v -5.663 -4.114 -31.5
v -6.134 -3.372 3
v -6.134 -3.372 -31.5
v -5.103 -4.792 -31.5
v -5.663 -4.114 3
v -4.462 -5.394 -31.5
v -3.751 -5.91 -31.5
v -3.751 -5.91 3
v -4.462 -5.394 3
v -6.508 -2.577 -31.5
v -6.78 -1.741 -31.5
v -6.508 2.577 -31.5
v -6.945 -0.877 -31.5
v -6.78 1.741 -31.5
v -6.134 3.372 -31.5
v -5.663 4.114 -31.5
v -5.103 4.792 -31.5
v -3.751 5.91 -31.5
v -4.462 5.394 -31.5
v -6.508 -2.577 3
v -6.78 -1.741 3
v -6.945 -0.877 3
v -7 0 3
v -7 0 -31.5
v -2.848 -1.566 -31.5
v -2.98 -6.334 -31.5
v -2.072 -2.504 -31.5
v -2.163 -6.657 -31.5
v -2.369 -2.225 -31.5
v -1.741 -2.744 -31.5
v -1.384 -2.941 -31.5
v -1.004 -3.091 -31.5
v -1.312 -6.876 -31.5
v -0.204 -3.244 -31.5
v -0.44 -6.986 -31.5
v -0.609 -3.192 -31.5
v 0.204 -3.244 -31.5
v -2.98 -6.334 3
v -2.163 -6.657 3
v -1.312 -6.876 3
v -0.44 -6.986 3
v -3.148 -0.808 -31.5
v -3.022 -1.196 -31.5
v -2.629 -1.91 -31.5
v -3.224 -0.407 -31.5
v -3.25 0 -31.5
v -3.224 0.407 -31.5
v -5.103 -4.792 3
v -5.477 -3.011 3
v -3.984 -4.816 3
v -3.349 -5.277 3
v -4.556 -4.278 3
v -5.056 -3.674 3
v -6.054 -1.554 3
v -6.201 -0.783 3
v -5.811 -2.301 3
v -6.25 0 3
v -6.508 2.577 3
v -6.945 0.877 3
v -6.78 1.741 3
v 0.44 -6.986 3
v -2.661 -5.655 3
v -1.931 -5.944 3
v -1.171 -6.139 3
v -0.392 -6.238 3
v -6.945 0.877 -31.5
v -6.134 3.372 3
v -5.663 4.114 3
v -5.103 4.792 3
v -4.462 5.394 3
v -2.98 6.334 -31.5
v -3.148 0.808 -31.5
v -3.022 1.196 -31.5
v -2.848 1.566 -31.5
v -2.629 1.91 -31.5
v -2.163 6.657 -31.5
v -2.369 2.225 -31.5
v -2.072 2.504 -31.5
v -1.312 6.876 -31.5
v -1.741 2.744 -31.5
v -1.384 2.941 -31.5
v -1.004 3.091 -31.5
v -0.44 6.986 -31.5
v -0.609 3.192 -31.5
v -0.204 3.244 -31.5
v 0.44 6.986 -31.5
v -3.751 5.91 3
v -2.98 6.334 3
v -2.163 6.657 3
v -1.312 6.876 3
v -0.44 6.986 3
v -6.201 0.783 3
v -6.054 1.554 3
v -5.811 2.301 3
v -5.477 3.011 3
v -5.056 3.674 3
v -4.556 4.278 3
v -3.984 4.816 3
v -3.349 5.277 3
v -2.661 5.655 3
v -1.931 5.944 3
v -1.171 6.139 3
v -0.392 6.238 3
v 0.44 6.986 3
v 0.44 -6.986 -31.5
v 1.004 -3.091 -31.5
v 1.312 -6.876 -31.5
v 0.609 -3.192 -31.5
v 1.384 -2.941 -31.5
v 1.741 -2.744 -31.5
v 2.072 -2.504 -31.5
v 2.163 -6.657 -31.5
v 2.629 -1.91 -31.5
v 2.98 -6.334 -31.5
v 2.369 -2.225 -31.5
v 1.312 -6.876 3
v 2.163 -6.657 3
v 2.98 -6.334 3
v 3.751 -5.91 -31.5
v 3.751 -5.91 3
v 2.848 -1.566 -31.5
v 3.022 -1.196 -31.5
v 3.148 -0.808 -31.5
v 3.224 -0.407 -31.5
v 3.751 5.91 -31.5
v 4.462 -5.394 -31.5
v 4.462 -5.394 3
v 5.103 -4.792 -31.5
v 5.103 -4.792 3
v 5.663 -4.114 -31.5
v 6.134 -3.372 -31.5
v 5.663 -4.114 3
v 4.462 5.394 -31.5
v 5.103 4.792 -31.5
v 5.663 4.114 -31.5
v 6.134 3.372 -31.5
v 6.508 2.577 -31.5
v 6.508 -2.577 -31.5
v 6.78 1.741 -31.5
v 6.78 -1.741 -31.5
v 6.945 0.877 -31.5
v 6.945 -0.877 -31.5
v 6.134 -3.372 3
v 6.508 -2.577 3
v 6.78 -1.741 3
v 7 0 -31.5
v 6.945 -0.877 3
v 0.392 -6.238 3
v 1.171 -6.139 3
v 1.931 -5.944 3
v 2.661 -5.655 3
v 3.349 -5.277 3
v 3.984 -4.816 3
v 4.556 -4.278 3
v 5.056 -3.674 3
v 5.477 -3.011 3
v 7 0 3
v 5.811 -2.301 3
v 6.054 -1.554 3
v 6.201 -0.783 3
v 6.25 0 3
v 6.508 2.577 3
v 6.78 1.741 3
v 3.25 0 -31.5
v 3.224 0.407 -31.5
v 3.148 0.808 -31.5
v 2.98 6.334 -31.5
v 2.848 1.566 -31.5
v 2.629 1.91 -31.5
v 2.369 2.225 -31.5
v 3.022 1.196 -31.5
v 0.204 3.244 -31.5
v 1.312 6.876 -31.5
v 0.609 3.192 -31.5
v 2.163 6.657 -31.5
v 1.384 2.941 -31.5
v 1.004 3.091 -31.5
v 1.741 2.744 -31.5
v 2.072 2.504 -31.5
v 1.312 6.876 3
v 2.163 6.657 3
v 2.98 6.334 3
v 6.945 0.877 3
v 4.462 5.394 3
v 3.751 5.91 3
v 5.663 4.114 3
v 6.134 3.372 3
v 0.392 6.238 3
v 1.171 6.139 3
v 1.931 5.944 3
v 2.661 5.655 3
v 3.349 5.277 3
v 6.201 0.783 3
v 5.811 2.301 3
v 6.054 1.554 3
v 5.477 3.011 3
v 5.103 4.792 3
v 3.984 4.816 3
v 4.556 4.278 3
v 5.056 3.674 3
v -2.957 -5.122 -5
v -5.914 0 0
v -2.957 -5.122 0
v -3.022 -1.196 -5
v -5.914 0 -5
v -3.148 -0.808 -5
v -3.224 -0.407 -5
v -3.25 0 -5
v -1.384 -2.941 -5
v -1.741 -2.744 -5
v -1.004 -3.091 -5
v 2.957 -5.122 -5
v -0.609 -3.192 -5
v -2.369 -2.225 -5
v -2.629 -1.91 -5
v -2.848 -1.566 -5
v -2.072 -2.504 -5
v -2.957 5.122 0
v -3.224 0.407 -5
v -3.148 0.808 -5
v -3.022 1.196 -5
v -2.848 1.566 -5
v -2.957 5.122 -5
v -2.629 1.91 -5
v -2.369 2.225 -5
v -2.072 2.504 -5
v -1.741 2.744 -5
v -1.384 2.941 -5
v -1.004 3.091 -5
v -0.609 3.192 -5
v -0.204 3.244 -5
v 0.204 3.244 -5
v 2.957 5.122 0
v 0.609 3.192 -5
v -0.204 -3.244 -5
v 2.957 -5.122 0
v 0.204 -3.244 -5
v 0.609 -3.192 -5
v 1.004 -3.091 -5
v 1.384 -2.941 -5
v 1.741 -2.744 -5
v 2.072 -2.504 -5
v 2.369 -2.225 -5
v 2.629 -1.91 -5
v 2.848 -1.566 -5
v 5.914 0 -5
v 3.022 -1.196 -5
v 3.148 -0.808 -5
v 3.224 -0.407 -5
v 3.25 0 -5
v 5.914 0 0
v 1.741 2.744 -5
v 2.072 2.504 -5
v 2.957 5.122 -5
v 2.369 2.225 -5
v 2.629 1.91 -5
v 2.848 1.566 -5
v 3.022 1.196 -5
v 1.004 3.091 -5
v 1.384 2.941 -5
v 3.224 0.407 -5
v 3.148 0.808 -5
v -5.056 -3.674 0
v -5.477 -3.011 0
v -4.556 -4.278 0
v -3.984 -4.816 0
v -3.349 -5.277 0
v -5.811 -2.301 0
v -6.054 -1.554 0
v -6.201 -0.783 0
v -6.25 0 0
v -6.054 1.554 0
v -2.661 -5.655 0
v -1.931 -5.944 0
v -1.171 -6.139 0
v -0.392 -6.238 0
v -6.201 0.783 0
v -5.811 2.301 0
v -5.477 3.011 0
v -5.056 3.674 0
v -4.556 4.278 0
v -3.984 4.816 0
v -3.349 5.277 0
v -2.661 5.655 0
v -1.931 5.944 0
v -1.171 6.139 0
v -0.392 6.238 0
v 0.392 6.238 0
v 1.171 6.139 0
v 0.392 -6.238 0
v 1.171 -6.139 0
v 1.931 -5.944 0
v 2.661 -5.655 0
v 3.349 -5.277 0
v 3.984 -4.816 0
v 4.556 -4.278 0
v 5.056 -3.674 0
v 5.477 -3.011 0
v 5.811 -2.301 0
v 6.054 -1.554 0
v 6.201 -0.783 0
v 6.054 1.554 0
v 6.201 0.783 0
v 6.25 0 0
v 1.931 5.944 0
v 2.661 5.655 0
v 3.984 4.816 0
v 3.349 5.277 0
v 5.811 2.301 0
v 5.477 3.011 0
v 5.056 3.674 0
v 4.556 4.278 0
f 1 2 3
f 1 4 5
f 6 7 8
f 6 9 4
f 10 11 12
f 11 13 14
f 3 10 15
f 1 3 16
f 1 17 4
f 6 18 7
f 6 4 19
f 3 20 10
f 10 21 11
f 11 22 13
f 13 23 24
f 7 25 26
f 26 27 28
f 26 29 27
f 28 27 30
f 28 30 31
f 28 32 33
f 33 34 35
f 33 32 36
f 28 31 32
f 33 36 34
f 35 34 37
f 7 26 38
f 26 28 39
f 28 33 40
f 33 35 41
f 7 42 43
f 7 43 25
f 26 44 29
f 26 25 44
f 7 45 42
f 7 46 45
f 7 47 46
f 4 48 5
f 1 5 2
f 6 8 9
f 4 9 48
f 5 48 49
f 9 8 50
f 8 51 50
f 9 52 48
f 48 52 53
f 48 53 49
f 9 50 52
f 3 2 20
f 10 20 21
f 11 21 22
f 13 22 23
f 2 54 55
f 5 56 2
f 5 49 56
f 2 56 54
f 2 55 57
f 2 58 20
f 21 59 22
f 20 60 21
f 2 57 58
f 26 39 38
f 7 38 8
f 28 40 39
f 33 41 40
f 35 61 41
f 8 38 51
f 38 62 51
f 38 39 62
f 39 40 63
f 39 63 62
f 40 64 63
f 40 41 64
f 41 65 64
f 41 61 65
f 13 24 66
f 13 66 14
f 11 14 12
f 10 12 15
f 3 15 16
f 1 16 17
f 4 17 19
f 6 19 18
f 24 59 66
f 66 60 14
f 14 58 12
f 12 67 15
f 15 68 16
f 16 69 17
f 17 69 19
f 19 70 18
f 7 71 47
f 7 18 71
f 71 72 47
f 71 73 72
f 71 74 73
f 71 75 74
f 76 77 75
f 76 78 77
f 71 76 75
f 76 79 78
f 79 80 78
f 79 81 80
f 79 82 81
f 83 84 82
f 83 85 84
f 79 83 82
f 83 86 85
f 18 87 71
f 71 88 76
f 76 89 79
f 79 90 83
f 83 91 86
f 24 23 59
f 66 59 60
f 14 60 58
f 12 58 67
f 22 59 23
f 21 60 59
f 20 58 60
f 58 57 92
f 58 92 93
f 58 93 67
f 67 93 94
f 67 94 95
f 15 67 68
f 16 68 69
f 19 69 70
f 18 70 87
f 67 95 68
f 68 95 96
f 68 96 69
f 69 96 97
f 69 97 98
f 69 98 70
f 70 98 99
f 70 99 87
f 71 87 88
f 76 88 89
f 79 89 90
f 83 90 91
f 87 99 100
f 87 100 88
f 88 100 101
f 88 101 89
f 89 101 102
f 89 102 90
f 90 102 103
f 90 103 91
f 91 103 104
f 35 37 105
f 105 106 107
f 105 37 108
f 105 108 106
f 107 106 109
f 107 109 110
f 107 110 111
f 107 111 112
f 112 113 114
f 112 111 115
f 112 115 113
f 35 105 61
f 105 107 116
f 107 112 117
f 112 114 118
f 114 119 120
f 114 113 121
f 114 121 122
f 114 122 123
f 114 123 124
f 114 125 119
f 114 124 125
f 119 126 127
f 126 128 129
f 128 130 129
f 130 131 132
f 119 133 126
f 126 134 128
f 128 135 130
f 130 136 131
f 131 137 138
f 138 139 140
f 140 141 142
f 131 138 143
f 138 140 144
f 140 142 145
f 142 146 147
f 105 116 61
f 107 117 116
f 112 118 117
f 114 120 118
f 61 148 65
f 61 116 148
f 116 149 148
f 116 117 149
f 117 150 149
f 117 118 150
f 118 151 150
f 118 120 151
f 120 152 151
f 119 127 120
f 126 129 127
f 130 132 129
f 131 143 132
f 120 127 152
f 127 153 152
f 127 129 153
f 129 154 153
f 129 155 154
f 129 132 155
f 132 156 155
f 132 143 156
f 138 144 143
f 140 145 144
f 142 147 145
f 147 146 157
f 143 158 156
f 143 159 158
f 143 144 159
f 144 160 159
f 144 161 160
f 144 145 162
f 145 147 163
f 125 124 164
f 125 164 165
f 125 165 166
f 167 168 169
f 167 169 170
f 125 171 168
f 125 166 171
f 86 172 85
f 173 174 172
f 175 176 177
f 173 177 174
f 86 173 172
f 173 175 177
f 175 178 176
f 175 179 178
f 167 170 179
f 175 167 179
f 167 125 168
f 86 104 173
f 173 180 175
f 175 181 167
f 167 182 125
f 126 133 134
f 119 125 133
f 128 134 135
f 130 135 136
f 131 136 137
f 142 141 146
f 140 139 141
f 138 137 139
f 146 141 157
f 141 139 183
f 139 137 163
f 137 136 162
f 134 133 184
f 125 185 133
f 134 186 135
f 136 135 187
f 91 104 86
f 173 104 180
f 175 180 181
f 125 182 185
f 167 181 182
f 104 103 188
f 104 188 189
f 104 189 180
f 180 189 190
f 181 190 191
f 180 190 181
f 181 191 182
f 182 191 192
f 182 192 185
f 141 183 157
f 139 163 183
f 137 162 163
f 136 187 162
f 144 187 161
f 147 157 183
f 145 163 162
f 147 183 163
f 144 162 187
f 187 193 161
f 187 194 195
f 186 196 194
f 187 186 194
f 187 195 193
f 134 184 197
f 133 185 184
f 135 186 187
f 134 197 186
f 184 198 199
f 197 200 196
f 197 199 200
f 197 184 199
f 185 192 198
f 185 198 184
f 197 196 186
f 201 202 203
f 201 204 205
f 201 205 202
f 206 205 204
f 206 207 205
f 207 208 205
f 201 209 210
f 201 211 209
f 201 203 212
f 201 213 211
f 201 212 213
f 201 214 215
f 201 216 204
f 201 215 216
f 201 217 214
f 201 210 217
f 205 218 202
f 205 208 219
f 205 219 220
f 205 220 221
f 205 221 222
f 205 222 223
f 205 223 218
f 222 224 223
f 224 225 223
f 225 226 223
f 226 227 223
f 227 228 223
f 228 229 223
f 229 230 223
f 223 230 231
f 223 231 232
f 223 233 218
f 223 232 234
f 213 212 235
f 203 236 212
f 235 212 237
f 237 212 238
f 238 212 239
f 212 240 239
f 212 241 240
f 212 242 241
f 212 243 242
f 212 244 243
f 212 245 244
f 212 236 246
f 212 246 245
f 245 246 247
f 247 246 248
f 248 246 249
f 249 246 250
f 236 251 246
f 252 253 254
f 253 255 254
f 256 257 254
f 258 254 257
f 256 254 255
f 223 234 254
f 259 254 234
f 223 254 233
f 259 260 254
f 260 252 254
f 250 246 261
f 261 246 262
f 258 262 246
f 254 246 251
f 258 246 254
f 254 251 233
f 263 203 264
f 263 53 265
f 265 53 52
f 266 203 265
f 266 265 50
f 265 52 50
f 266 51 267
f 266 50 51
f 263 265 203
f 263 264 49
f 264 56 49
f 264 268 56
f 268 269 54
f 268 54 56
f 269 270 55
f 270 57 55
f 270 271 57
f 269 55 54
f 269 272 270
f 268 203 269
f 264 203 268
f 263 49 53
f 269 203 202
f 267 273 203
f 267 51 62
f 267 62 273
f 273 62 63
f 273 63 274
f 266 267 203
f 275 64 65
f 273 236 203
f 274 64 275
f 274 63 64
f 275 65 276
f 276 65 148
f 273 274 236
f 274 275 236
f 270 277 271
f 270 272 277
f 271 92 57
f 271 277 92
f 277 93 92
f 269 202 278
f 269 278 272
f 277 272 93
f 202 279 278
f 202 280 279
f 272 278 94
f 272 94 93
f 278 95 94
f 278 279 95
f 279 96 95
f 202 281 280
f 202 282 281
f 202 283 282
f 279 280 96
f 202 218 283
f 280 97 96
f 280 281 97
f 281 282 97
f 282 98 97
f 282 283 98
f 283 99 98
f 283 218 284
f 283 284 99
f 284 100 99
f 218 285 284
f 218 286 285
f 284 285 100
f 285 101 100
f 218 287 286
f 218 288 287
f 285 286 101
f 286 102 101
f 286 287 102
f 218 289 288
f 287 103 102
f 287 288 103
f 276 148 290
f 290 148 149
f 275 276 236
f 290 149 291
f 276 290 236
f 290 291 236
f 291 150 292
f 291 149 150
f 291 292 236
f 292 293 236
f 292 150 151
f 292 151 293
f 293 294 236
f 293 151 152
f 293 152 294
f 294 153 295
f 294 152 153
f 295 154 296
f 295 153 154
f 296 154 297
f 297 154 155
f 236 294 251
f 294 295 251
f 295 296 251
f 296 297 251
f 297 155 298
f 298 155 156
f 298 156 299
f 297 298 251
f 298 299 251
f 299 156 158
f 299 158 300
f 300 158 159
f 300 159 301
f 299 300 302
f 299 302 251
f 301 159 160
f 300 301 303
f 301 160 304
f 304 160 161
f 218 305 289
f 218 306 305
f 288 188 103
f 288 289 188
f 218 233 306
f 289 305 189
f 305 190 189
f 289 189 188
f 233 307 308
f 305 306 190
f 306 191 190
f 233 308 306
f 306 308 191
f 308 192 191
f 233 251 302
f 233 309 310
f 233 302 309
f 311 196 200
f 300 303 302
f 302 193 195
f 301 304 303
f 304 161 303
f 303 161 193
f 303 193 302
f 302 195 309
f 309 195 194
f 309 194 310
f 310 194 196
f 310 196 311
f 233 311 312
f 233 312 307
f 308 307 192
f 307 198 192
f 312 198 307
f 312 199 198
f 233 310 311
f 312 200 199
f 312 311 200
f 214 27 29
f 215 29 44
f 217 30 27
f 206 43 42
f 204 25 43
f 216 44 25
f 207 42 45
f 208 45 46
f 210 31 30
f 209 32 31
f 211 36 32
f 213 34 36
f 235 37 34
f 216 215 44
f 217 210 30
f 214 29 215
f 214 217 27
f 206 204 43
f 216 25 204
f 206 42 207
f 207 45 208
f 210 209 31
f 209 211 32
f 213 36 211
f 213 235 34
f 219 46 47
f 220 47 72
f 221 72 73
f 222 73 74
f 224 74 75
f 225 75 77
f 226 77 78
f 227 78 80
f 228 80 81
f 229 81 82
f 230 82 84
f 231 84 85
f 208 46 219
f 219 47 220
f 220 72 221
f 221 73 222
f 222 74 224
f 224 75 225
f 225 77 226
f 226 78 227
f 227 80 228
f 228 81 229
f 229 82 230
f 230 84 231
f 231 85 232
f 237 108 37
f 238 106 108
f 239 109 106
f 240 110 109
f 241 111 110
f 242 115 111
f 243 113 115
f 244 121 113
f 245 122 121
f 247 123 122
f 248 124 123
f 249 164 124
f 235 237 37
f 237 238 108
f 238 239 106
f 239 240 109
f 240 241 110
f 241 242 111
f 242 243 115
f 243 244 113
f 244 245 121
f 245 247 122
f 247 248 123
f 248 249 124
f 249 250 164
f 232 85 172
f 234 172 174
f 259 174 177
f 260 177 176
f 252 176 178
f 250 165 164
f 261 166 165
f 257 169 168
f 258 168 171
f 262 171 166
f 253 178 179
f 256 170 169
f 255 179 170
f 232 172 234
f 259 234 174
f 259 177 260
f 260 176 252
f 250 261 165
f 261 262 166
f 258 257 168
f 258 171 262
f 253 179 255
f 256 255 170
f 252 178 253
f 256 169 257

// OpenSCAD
$fn = 50;

difference() {
	union() {
		translate(v = [0, 0, -31.5]) {
			cylinder(h = 34.5, r = 7.0);
		}
		#translate(v = [0, 0, -33.0]) {
			cylinder(h = 33, r = 2.875);
		}
	}
	union() {
		translate(v = [0, 0, 0]) {
			rotate(a = [0, 0, 0]) {
				difference() {
					union() {
						translate(v = [0, 0, -5]) {
							linear_extrude(height = 5) {
								polygon(points = [[5.914249999999999, 0.0], [2.957125, 5.1218907443321156], [-2.9571249999999982, 5.1218907443321156], [-5.914249999999999, 7.242867331857232e-16], [-2.9571250000000022, -5.121890744332115], [2.9571249999999956, -5.121890744332118]]);
							}
						}
					}
					union();
				}
			}
		}
		#cylinder(h = 3, r = 6.25);
		#translate(v = [0, 0, -100.0]) {
			cylinder(h = 200, r = 3.25);
		}
	}
}
